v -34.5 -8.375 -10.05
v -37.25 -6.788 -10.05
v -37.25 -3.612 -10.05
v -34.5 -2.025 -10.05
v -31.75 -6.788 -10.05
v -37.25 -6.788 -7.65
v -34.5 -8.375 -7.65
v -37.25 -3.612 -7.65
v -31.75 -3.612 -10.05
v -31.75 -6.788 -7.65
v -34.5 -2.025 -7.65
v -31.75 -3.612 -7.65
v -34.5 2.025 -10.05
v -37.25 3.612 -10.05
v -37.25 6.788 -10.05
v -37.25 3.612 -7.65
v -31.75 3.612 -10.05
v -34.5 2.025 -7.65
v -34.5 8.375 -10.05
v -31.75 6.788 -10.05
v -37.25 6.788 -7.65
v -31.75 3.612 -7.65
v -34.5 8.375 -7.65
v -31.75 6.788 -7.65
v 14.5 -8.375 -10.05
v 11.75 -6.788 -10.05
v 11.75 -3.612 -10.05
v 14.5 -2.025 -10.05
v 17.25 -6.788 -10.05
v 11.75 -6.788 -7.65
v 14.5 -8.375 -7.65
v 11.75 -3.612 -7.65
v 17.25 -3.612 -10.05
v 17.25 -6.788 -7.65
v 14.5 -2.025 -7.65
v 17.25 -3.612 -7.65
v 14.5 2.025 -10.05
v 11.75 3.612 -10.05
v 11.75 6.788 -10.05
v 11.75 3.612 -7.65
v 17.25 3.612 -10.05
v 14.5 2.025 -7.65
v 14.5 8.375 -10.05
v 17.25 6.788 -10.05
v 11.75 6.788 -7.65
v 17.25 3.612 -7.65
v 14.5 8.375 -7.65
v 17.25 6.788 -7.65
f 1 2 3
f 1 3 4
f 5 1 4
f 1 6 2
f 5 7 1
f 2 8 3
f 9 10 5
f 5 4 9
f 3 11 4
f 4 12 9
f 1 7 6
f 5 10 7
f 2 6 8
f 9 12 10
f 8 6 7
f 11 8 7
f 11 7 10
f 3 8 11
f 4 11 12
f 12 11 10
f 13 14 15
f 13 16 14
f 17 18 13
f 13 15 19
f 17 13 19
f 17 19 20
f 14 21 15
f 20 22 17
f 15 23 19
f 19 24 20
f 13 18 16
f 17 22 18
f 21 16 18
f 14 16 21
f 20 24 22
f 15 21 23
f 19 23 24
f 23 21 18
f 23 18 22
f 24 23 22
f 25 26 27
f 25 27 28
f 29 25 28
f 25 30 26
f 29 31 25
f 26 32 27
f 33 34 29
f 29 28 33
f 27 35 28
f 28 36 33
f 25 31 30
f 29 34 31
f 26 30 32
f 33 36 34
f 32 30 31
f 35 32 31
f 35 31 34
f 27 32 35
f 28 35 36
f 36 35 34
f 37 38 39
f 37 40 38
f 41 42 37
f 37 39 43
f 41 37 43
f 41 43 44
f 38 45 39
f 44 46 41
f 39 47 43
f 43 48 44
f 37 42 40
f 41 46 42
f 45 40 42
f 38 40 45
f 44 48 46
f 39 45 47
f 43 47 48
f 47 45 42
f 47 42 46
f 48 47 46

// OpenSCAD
$fn = 50;

difference() {
	union() {
		translate(v = [-34.5, -5.2, -10.05]) {
			rotate(a = [0, 0, 30]) {
				linear_extrude(height = 2.4) {
					polygon(points = [[3.1754264805429417, 0.0], [1.5877132402714713, 2.75], [-1.5877132402714702, 2.7500000000000004], [-3.1754264805429417, 3.888775875324659e-16], [-1.5877132402714722, -2.7499999999999996], [1.5877132402714687, -2.7500000000000013]]);
				}
			}
		}
		translate(v = [-34.5, 5.2, -10.05]) {
			rotate(a = [0, 0, 30]) {
				linear_extrude(height = 2.4) {
					polygon(points = [[3.1754264805429417, 0.0], [1.5877132402714713, 2.75], [-1.5877132402714702, 2.7500000000000004], [-3.1754264805429417, 3.888775875324659e-16], [-1.5877132402714722, -2.7499999999999996], [1.5877132402714687, -2.7500000000000013]]);
				}
			}
		}
		translate(v = [14.5, -5.2, -10.05]) {
			rotate(a = [0, 0, 30]) {
				linear_extrude(height = 2.4) {
					polygon(points = [[3.1754264805429417, 0.0], [1.5877132402714713, 2.75], [-1.5877132402714702, 2.7500000000000004], [-3.1754264805429417, 3.888775875324659e-16], [-1.5877132402714722, -2.7499999999999996], [1.5877132402714687, -2.7500000000000013]]);
				}
			}
		}
		translate(v = [14.5, 5.2, -10.05]) {
			rotate(a = [0, 0, 30]) {
				linear_extrude(height = 2.4) {
					polygon(points = [[3.1754264805429417, 0.0], [1.5877132402714713, 2.75], [-1.5877132402714702, 2.7500000000000004], [-3.1754264805429417, 3.888775875324659e-16], [-1.5877132402714722, -2.7499999999999996], [1.5877132402714687, -2.7500000000000013]]);
				}
			}
		}
	}
	union();
}
